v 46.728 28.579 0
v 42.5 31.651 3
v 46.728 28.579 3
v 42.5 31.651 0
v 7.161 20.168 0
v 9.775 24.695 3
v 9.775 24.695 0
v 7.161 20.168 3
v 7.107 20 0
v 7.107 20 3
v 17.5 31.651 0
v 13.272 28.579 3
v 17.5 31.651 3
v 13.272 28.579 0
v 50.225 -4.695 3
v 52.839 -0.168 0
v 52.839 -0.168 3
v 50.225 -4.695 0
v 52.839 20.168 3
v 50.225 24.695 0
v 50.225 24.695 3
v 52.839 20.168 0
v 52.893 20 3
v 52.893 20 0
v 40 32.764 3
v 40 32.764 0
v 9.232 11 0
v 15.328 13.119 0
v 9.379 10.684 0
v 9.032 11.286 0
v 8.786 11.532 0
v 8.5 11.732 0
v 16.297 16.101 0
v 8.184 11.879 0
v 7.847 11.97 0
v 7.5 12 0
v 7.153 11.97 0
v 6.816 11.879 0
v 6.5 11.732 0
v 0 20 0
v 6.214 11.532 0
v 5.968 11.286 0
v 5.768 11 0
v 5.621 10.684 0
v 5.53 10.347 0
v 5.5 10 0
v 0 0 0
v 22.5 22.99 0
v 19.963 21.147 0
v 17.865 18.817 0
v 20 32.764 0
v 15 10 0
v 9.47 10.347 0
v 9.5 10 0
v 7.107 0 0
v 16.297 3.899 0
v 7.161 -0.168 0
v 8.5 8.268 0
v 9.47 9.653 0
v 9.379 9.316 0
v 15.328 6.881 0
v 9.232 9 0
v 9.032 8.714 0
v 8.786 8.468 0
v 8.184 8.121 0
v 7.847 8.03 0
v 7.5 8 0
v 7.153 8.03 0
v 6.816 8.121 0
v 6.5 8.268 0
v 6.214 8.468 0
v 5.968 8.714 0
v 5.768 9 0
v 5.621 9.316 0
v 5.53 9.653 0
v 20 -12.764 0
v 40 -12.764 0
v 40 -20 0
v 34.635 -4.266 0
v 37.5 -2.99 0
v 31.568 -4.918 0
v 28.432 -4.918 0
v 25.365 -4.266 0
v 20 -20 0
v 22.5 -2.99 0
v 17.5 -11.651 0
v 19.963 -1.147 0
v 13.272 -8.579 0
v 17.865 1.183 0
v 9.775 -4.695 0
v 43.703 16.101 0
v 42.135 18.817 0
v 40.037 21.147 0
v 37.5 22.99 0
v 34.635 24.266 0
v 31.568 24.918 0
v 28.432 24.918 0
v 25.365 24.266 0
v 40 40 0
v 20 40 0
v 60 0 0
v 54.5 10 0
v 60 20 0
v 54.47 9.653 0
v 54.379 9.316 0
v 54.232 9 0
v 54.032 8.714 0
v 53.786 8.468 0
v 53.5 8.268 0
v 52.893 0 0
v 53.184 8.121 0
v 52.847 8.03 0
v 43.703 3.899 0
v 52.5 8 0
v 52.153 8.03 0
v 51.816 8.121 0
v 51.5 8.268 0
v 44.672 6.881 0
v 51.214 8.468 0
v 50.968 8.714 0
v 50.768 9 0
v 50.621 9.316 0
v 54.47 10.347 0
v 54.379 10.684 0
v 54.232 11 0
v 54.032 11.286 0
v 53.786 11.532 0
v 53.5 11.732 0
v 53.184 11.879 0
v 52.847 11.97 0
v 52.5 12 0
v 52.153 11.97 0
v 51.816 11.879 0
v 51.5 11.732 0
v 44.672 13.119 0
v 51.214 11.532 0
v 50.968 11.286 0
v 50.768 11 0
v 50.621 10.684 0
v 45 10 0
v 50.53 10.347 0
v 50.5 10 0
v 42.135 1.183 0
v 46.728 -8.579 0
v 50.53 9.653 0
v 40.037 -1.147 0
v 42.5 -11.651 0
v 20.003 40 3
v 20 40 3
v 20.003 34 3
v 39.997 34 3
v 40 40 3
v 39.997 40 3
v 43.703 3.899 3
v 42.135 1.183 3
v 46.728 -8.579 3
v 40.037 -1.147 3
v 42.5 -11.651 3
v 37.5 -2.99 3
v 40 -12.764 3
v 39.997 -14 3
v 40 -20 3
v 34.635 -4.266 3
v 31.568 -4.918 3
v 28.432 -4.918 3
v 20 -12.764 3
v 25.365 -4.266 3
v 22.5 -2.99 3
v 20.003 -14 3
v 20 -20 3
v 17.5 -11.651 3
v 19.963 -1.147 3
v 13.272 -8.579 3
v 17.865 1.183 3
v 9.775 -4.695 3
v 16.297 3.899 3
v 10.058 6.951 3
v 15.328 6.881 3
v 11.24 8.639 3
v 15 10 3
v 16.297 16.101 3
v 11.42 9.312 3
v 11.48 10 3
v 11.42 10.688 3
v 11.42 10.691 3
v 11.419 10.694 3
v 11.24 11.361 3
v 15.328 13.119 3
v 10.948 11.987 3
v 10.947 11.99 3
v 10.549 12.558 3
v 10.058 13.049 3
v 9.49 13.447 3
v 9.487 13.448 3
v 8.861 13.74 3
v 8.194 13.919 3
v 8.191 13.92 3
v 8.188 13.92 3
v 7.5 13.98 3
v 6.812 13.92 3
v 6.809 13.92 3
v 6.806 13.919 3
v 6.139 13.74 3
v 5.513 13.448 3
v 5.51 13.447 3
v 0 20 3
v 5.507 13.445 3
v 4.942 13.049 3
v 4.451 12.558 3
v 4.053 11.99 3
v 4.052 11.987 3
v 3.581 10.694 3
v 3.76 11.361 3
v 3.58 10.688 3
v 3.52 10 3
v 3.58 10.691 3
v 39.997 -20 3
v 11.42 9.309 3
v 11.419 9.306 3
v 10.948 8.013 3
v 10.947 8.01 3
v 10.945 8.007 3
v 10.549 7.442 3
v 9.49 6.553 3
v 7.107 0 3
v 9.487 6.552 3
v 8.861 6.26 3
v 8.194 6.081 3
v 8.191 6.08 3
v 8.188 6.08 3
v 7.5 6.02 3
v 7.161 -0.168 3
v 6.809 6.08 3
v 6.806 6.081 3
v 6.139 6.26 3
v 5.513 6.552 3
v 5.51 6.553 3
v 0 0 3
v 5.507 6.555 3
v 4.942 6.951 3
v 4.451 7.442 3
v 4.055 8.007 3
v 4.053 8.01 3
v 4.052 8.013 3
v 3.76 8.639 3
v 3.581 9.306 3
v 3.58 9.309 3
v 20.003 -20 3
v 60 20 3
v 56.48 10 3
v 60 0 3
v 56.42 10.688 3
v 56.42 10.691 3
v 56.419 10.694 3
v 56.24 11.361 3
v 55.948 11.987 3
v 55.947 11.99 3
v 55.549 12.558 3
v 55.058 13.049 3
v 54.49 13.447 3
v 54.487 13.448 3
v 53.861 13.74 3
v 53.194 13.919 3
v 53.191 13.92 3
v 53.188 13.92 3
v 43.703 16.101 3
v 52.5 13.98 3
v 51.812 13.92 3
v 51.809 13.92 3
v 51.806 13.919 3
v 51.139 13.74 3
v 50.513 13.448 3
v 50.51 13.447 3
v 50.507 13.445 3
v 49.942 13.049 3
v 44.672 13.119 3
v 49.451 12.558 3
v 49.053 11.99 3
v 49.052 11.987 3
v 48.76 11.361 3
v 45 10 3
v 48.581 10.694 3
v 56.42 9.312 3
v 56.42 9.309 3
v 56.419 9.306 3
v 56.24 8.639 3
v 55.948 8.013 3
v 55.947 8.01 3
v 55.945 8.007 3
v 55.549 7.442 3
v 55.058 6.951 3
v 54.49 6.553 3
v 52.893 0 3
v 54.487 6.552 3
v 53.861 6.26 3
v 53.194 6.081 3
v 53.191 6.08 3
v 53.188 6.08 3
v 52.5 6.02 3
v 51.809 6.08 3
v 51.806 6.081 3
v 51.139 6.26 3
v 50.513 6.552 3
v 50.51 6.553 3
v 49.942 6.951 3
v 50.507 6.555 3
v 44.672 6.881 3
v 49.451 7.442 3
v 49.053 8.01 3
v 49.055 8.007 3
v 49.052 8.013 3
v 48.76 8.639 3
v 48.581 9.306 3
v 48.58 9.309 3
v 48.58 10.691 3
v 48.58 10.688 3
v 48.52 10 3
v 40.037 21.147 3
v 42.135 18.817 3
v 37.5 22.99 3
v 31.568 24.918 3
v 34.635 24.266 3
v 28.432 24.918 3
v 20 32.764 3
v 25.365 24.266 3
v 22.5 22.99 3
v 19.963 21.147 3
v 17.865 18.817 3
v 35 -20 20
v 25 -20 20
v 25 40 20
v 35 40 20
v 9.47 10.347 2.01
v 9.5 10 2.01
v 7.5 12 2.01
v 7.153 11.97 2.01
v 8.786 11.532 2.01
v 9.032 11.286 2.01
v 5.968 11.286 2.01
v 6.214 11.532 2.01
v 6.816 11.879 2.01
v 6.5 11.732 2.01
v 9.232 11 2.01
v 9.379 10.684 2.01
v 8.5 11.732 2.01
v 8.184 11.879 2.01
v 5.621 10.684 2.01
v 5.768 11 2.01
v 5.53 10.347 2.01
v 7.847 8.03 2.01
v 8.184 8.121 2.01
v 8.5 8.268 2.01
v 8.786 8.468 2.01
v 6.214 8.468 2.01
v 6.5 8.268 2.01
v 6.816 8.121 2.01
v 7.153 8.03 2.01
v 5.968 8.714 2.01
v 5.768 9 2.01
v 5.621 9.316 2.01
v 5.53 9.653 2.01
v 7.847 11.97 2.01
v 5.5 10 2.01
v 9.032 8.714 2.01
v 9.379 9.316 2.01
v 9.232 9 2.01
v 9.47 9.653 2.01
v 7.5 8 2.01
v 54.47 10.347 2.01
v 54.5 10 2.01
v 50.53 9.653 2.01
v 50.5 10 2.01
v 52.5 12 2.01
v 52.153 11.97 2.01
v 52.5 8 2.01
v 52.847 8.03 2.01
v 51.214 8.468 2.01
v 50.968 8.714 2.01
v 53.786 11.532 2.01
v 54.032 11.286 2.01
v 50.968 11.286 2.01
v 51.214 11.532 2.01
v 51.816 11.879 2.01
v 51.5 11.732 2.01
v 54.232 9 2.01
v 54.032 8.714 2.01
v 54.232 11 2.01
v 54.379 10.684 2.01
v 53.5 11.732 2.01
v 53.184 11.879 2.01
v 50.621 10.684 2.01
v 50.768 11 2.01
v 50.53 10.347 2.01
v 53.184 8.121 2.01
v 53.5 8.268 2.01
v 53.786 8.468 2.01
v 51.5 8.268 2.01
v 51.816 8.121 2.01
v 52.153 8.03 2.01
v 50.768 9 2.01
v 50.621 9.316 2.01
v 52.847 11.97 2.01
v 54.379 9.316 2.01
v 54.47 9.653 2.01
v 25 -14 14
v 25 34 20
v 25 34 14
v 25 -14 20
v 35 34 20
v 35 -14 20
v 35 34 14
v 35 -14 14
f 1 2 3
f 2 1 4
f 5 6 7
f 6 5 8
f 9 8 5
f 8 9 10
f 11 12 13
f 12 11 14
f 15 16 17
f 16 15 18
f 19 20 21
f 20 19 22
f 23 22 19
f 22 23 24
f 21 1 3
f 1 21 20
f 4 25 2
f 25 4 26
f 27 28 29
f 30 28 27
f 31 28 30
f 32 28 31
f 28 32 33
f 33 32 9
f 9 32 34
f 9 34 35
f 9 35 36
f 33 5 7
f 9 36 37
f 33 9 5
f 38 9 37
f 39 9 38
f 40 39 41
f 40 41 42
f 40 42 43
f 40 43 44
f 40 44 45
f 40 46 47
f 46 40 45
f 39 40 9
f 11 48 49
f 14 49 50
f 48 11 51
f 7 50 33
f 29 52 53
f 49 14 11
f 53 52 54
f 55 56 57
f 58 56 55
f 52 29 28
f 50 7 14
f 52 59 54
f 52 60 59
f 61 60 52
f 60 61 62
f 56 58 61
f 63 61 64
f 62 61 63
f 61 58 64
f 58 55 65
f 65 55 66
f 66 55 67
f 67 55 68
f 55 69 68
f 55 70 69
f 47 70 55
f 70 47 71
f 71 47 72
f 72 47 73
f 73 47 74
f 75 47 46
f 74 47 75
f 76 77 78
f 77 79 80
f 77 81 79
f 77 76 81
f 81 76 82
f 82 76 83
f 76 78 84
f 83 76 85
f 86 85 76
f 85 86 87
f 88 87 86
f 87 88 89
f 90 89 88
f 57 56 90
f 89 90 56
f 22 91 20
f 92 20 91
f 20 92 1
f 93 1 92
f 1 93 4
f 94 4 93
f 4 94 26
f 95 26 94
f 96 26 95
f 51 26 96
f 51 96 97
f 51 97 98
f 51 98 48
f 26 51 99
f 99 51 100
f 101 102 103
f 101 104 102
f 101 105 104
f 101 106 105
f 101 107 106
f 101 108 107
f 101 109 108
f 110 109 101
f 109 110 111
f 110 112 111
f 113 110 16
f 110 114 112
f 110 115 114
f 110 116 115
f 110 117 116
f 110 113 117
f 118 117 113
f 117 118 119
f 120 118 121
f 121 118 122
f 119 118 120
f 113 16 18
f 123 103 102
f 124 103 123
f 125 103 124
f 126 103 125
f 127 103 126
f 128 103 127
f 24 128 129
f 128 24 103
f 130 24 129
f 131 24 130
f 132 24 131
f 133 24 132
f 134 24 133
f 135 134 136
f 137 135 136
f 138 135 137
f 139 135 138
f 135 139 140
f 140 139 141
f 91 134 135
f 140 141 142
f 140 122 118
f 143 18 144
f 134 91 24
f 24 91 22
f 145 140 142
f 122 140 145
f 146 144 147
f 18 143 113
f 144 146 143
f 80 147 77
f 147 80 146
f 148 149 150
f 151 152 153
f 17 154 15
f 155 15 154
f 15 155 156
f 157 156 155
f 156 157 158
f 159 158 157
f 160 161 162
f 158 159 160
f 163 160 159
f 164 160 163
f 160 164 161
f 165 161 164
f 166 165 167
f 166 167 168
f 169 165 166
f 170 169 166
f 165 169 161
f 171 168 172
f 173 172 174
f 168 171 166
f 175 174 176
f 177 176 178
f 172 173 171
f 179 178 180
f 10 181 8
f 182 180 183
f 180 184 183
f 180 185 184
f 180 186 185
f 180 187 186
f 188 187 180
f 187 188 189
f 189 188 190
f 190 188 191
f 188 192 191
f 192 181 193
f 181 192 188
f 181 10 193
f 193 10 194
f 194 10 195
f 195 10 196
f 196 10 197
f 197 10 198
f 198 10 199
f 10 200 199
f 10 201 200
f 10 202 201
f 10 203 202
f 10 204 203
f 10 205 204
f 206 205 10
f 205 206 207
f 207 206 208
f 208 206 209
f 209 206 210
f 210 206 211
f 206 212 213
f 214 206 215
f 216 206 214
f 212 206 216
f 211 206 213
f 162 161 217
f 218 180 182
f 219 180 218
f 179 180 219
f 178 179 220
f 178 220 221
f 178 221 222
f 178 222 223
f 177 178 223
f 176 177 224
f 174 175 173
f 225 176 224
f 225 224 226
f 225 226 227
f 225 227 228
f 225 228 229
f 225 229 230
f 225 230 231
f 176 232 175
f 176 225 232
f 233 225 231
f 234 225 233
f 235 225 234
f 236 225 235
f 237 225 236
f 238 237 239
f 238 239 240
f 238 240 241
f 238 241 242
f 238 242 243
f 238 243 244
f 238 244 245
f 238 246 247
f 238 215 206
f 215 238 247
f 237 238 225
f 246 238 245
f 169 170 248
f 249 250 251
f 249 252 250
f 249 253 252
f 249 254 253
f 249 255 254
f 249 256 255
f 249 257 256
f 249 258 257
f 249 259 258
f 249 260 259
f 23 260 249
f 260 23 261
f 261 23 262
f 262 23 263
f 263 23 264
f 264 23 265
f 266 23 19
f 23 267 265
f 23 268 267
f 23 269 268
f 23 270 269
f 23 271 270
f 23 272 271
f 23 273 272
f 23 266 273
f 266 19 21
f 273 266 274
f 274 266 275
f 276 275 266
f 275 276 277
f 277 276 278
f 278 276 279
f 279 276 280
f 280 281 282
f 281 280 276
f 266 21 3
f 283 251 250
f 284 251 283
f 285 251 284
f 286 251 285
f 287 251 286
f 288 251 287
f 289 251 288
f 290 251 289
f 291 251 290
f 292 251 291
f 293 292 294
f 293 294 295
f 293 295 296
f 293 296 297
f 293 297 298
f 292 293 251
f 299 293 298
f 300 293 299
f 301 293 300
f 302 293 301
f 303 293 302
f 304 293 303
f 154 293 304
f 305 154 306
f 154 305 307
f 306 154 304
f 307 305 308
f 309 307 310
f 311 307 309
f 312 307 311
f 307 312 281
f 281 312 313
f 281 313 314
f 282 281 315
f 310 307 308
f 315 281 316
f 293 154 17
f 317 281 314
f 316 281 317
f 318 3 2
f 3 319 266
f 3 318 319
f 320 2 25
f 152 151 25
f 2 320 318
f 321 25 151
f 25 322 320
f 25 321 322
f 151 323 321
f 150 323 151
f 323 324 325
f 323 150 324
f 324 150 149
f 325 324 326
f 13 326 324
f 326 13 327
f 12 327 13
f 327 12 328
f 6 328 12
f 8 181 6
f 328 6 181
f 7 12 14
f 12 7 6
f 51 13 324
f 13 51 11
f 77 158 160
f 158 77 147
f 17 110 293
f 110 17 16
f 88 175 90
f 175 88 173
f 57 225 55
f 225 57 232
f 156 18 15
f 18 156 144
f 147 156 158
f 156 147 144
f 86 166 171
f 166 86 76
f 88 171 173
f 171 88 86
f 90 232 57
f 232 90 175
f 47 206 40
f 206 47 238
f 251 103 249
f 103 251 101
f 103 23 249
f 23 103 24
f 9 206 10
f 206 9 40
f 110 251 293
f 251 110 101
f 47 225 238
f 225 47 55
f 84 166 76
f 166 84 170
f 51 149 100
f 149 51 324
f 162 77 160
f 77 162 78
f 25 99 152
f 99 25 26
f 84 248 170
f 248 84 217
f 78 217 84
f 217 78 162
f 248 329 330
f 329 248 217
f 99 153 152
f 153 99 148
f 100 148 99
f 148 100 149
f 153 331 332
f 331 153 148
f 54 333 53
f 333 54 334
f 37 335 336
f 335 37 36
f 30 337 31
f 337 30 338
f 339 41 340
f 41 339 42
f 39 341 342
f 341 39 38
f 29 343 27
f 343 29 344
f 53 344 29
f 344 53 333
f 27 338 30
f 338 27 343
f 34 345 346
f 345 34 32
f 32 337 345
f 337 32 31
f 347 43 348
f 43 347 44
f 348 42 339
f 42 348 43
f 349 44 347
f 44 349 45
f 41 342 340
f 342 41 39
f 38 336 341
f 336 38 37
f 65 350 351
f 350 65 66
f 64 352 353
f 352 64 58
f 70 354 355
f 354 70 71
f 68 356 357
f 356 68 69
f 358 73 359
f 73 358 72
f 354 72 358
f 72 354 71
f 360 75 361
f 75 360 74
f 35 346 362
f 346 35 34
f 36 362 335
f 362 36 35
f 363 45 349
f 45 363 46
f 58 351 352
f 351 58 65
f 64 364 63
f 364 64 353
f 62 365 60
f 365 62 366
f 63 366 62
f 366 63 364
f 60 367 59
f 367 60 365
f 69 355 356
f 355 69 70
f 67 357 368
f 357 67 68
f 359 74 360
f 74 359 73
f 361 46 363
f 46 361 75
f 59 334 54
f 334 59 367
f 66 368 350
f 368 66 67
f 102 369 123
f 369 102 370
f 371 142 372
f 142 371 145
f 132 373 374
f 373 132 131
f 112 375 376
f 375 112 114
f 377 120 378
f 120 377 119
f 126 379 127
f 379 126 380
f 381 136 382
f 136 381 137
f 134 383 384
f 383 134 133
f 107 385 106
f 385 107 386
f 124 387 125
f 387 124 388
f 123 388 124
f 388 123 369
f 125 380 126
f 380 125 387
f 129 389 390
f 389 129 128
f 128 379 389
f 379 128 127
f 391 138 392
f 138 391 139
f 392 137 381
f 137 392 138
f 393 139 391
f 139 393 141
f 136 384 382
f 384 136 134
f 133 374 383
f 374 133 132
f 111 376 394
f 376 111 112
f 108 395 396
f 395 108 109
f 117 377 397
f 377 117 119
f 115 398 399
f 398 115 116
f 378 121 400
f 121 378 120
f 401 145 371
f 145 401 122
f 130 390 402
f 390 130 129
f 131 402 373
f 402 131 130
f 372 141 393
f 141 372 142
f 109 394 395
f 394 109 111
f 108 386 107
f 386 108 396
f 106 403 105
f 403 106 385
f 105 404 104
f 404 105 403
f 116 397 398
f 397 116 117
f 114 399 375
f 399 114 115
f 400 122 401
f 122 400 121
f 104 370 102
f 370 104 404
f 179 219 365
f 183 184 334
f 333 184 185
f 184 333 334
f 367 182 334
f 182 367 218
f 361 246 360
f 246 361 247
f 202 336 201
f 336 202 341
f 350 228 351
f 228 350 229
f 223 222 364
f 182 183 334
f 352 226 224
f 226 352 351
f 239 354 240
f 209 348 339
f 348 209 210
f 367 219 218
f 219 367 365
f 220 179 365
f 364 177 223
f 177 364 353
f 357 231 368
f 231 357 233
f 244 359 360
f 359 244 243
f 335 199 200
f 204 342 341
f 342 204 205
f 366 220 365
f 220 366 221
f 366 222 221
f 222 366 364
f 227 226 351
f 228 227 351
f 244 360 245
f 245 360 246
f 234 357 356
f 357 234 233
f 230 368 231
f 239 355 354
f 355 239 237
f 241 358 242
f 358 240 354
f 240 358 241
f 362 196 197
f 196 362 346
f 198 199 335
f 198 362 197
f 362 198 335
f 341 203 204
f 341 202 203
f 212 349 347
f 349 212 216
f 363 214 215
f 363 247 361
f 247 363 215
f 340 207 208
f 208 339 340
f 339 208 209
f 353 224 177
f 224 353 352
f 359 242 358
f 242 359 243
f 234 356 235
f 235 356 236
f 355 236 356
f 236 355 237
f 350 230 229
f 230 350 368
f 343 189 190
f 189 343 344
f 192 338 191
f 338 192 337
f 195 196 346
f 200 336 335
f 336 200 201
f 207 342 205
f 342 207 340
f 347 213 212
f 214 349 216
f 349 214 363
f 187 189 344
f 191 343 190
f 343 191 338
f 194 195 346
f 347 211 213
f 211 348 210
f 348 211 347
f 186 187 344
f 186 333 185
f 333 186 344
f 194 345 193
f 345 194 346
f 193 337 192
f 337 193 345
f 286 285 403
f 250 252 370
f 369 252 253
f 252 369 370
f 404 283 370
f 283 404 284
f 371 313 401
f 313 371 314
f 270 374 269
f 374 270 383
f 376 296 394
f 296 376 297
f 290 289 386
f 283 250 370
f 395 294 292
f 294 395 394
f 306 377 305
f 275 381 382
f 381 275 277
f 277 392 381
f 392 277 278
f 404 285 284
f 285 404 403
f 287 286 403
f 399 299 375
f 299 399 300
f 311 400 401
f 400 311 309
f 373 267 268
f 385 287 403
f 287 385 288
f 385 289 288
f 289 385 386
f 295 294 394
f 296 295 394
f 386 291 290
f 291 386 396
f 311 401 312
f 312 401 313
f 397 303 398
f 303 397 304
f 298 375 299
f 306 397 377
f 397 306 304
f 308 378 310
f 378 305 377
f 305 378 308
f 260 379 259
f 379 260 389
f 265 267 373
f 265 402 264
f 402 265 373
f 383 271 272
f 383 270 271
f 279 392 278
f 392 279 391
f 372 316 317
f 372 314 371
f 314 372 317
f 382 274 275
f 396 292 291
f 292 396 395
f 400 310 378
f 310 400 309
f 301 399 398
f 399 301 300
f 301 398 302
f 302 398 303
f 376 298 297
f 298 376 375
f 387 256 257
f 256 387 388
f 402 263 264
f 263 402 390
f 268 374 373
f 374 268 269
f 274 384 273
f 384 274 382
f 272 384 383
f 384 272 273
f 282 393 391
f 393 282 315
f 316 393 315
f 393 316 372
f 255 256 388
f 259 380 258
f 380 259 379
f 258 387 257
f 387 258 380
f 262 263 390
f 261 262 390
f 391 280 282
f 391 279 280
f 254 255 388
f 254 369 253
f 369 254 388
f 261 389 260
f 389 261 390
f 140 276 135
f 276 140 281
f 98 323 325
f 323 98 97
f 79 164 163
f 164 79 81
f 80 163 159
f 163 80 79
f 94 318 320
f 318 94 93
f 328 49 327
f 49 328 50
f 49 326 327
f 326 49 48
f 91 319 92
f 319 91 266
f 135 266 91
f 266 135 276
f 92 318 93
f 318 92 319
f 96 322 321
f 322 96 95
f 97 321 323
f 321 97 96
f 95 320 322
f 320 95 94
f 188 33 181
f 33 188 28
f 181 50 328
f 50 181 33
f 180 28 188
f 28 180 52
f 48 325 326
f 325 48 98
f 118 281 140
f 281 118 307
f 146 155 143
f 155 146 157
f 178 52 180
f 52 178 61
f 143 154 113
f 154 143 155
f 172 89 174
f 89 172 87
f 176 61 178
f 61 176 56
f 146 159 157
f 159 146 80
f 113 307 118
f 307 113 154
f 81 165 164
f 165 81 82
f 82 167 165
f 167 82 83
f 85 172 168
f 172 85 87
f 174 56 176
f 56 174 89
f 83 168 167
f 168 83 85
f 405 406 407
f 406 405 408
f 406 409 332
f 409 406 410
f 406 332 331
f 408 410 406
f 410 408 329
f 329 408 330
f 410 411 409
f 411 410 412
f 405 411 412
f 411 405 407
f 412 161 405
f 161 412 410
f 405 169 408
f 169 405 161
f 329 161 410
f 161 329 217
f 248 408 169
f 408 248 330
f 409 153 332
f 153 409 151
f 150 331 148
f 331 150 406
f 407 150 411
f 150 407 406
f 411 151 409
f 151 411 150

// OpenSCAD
e = 0.01;


difference() {
    union() {
        translate([30, 10, 0]) cylinder(3, 25, 25);
        cube([60, 20, 3]);
        translate([20, -20, 0]) cube([20, 60, 3]);
    }
    translate([7.5, 10, -e]) cylinder(5, 2, 2, $fn=36);
    translate([52.5, 10, -e]) cylinder(5, 2, 2, $fn=36);
    translate([7.5, 10, 2 + e]) cylinder(1, 2, 4, $fn=36);
    translate([52.5, 10, 2 + e]) cylinder(1, 2, 4, $fn=36);
    translate([30, 10, -e]) cylinder(5, 15, 15);
}

translate([25, -17.5, 14]) cube([10, 55, 6]);

x = 14;
translate([30, 0 - x, 0]) rotate([90, 0, 0]) linear_extrude(6) polygon([[-10, 3-e], [-5, 20], [5, 20], [10, 3-e]]);
translate([30, 26 + x, 0]) rotate([90, 0, 0]) linear_extrude(6) polygon([[-10, 3-e], [-5, 20], [5, 20], [10, 3-e]]);
